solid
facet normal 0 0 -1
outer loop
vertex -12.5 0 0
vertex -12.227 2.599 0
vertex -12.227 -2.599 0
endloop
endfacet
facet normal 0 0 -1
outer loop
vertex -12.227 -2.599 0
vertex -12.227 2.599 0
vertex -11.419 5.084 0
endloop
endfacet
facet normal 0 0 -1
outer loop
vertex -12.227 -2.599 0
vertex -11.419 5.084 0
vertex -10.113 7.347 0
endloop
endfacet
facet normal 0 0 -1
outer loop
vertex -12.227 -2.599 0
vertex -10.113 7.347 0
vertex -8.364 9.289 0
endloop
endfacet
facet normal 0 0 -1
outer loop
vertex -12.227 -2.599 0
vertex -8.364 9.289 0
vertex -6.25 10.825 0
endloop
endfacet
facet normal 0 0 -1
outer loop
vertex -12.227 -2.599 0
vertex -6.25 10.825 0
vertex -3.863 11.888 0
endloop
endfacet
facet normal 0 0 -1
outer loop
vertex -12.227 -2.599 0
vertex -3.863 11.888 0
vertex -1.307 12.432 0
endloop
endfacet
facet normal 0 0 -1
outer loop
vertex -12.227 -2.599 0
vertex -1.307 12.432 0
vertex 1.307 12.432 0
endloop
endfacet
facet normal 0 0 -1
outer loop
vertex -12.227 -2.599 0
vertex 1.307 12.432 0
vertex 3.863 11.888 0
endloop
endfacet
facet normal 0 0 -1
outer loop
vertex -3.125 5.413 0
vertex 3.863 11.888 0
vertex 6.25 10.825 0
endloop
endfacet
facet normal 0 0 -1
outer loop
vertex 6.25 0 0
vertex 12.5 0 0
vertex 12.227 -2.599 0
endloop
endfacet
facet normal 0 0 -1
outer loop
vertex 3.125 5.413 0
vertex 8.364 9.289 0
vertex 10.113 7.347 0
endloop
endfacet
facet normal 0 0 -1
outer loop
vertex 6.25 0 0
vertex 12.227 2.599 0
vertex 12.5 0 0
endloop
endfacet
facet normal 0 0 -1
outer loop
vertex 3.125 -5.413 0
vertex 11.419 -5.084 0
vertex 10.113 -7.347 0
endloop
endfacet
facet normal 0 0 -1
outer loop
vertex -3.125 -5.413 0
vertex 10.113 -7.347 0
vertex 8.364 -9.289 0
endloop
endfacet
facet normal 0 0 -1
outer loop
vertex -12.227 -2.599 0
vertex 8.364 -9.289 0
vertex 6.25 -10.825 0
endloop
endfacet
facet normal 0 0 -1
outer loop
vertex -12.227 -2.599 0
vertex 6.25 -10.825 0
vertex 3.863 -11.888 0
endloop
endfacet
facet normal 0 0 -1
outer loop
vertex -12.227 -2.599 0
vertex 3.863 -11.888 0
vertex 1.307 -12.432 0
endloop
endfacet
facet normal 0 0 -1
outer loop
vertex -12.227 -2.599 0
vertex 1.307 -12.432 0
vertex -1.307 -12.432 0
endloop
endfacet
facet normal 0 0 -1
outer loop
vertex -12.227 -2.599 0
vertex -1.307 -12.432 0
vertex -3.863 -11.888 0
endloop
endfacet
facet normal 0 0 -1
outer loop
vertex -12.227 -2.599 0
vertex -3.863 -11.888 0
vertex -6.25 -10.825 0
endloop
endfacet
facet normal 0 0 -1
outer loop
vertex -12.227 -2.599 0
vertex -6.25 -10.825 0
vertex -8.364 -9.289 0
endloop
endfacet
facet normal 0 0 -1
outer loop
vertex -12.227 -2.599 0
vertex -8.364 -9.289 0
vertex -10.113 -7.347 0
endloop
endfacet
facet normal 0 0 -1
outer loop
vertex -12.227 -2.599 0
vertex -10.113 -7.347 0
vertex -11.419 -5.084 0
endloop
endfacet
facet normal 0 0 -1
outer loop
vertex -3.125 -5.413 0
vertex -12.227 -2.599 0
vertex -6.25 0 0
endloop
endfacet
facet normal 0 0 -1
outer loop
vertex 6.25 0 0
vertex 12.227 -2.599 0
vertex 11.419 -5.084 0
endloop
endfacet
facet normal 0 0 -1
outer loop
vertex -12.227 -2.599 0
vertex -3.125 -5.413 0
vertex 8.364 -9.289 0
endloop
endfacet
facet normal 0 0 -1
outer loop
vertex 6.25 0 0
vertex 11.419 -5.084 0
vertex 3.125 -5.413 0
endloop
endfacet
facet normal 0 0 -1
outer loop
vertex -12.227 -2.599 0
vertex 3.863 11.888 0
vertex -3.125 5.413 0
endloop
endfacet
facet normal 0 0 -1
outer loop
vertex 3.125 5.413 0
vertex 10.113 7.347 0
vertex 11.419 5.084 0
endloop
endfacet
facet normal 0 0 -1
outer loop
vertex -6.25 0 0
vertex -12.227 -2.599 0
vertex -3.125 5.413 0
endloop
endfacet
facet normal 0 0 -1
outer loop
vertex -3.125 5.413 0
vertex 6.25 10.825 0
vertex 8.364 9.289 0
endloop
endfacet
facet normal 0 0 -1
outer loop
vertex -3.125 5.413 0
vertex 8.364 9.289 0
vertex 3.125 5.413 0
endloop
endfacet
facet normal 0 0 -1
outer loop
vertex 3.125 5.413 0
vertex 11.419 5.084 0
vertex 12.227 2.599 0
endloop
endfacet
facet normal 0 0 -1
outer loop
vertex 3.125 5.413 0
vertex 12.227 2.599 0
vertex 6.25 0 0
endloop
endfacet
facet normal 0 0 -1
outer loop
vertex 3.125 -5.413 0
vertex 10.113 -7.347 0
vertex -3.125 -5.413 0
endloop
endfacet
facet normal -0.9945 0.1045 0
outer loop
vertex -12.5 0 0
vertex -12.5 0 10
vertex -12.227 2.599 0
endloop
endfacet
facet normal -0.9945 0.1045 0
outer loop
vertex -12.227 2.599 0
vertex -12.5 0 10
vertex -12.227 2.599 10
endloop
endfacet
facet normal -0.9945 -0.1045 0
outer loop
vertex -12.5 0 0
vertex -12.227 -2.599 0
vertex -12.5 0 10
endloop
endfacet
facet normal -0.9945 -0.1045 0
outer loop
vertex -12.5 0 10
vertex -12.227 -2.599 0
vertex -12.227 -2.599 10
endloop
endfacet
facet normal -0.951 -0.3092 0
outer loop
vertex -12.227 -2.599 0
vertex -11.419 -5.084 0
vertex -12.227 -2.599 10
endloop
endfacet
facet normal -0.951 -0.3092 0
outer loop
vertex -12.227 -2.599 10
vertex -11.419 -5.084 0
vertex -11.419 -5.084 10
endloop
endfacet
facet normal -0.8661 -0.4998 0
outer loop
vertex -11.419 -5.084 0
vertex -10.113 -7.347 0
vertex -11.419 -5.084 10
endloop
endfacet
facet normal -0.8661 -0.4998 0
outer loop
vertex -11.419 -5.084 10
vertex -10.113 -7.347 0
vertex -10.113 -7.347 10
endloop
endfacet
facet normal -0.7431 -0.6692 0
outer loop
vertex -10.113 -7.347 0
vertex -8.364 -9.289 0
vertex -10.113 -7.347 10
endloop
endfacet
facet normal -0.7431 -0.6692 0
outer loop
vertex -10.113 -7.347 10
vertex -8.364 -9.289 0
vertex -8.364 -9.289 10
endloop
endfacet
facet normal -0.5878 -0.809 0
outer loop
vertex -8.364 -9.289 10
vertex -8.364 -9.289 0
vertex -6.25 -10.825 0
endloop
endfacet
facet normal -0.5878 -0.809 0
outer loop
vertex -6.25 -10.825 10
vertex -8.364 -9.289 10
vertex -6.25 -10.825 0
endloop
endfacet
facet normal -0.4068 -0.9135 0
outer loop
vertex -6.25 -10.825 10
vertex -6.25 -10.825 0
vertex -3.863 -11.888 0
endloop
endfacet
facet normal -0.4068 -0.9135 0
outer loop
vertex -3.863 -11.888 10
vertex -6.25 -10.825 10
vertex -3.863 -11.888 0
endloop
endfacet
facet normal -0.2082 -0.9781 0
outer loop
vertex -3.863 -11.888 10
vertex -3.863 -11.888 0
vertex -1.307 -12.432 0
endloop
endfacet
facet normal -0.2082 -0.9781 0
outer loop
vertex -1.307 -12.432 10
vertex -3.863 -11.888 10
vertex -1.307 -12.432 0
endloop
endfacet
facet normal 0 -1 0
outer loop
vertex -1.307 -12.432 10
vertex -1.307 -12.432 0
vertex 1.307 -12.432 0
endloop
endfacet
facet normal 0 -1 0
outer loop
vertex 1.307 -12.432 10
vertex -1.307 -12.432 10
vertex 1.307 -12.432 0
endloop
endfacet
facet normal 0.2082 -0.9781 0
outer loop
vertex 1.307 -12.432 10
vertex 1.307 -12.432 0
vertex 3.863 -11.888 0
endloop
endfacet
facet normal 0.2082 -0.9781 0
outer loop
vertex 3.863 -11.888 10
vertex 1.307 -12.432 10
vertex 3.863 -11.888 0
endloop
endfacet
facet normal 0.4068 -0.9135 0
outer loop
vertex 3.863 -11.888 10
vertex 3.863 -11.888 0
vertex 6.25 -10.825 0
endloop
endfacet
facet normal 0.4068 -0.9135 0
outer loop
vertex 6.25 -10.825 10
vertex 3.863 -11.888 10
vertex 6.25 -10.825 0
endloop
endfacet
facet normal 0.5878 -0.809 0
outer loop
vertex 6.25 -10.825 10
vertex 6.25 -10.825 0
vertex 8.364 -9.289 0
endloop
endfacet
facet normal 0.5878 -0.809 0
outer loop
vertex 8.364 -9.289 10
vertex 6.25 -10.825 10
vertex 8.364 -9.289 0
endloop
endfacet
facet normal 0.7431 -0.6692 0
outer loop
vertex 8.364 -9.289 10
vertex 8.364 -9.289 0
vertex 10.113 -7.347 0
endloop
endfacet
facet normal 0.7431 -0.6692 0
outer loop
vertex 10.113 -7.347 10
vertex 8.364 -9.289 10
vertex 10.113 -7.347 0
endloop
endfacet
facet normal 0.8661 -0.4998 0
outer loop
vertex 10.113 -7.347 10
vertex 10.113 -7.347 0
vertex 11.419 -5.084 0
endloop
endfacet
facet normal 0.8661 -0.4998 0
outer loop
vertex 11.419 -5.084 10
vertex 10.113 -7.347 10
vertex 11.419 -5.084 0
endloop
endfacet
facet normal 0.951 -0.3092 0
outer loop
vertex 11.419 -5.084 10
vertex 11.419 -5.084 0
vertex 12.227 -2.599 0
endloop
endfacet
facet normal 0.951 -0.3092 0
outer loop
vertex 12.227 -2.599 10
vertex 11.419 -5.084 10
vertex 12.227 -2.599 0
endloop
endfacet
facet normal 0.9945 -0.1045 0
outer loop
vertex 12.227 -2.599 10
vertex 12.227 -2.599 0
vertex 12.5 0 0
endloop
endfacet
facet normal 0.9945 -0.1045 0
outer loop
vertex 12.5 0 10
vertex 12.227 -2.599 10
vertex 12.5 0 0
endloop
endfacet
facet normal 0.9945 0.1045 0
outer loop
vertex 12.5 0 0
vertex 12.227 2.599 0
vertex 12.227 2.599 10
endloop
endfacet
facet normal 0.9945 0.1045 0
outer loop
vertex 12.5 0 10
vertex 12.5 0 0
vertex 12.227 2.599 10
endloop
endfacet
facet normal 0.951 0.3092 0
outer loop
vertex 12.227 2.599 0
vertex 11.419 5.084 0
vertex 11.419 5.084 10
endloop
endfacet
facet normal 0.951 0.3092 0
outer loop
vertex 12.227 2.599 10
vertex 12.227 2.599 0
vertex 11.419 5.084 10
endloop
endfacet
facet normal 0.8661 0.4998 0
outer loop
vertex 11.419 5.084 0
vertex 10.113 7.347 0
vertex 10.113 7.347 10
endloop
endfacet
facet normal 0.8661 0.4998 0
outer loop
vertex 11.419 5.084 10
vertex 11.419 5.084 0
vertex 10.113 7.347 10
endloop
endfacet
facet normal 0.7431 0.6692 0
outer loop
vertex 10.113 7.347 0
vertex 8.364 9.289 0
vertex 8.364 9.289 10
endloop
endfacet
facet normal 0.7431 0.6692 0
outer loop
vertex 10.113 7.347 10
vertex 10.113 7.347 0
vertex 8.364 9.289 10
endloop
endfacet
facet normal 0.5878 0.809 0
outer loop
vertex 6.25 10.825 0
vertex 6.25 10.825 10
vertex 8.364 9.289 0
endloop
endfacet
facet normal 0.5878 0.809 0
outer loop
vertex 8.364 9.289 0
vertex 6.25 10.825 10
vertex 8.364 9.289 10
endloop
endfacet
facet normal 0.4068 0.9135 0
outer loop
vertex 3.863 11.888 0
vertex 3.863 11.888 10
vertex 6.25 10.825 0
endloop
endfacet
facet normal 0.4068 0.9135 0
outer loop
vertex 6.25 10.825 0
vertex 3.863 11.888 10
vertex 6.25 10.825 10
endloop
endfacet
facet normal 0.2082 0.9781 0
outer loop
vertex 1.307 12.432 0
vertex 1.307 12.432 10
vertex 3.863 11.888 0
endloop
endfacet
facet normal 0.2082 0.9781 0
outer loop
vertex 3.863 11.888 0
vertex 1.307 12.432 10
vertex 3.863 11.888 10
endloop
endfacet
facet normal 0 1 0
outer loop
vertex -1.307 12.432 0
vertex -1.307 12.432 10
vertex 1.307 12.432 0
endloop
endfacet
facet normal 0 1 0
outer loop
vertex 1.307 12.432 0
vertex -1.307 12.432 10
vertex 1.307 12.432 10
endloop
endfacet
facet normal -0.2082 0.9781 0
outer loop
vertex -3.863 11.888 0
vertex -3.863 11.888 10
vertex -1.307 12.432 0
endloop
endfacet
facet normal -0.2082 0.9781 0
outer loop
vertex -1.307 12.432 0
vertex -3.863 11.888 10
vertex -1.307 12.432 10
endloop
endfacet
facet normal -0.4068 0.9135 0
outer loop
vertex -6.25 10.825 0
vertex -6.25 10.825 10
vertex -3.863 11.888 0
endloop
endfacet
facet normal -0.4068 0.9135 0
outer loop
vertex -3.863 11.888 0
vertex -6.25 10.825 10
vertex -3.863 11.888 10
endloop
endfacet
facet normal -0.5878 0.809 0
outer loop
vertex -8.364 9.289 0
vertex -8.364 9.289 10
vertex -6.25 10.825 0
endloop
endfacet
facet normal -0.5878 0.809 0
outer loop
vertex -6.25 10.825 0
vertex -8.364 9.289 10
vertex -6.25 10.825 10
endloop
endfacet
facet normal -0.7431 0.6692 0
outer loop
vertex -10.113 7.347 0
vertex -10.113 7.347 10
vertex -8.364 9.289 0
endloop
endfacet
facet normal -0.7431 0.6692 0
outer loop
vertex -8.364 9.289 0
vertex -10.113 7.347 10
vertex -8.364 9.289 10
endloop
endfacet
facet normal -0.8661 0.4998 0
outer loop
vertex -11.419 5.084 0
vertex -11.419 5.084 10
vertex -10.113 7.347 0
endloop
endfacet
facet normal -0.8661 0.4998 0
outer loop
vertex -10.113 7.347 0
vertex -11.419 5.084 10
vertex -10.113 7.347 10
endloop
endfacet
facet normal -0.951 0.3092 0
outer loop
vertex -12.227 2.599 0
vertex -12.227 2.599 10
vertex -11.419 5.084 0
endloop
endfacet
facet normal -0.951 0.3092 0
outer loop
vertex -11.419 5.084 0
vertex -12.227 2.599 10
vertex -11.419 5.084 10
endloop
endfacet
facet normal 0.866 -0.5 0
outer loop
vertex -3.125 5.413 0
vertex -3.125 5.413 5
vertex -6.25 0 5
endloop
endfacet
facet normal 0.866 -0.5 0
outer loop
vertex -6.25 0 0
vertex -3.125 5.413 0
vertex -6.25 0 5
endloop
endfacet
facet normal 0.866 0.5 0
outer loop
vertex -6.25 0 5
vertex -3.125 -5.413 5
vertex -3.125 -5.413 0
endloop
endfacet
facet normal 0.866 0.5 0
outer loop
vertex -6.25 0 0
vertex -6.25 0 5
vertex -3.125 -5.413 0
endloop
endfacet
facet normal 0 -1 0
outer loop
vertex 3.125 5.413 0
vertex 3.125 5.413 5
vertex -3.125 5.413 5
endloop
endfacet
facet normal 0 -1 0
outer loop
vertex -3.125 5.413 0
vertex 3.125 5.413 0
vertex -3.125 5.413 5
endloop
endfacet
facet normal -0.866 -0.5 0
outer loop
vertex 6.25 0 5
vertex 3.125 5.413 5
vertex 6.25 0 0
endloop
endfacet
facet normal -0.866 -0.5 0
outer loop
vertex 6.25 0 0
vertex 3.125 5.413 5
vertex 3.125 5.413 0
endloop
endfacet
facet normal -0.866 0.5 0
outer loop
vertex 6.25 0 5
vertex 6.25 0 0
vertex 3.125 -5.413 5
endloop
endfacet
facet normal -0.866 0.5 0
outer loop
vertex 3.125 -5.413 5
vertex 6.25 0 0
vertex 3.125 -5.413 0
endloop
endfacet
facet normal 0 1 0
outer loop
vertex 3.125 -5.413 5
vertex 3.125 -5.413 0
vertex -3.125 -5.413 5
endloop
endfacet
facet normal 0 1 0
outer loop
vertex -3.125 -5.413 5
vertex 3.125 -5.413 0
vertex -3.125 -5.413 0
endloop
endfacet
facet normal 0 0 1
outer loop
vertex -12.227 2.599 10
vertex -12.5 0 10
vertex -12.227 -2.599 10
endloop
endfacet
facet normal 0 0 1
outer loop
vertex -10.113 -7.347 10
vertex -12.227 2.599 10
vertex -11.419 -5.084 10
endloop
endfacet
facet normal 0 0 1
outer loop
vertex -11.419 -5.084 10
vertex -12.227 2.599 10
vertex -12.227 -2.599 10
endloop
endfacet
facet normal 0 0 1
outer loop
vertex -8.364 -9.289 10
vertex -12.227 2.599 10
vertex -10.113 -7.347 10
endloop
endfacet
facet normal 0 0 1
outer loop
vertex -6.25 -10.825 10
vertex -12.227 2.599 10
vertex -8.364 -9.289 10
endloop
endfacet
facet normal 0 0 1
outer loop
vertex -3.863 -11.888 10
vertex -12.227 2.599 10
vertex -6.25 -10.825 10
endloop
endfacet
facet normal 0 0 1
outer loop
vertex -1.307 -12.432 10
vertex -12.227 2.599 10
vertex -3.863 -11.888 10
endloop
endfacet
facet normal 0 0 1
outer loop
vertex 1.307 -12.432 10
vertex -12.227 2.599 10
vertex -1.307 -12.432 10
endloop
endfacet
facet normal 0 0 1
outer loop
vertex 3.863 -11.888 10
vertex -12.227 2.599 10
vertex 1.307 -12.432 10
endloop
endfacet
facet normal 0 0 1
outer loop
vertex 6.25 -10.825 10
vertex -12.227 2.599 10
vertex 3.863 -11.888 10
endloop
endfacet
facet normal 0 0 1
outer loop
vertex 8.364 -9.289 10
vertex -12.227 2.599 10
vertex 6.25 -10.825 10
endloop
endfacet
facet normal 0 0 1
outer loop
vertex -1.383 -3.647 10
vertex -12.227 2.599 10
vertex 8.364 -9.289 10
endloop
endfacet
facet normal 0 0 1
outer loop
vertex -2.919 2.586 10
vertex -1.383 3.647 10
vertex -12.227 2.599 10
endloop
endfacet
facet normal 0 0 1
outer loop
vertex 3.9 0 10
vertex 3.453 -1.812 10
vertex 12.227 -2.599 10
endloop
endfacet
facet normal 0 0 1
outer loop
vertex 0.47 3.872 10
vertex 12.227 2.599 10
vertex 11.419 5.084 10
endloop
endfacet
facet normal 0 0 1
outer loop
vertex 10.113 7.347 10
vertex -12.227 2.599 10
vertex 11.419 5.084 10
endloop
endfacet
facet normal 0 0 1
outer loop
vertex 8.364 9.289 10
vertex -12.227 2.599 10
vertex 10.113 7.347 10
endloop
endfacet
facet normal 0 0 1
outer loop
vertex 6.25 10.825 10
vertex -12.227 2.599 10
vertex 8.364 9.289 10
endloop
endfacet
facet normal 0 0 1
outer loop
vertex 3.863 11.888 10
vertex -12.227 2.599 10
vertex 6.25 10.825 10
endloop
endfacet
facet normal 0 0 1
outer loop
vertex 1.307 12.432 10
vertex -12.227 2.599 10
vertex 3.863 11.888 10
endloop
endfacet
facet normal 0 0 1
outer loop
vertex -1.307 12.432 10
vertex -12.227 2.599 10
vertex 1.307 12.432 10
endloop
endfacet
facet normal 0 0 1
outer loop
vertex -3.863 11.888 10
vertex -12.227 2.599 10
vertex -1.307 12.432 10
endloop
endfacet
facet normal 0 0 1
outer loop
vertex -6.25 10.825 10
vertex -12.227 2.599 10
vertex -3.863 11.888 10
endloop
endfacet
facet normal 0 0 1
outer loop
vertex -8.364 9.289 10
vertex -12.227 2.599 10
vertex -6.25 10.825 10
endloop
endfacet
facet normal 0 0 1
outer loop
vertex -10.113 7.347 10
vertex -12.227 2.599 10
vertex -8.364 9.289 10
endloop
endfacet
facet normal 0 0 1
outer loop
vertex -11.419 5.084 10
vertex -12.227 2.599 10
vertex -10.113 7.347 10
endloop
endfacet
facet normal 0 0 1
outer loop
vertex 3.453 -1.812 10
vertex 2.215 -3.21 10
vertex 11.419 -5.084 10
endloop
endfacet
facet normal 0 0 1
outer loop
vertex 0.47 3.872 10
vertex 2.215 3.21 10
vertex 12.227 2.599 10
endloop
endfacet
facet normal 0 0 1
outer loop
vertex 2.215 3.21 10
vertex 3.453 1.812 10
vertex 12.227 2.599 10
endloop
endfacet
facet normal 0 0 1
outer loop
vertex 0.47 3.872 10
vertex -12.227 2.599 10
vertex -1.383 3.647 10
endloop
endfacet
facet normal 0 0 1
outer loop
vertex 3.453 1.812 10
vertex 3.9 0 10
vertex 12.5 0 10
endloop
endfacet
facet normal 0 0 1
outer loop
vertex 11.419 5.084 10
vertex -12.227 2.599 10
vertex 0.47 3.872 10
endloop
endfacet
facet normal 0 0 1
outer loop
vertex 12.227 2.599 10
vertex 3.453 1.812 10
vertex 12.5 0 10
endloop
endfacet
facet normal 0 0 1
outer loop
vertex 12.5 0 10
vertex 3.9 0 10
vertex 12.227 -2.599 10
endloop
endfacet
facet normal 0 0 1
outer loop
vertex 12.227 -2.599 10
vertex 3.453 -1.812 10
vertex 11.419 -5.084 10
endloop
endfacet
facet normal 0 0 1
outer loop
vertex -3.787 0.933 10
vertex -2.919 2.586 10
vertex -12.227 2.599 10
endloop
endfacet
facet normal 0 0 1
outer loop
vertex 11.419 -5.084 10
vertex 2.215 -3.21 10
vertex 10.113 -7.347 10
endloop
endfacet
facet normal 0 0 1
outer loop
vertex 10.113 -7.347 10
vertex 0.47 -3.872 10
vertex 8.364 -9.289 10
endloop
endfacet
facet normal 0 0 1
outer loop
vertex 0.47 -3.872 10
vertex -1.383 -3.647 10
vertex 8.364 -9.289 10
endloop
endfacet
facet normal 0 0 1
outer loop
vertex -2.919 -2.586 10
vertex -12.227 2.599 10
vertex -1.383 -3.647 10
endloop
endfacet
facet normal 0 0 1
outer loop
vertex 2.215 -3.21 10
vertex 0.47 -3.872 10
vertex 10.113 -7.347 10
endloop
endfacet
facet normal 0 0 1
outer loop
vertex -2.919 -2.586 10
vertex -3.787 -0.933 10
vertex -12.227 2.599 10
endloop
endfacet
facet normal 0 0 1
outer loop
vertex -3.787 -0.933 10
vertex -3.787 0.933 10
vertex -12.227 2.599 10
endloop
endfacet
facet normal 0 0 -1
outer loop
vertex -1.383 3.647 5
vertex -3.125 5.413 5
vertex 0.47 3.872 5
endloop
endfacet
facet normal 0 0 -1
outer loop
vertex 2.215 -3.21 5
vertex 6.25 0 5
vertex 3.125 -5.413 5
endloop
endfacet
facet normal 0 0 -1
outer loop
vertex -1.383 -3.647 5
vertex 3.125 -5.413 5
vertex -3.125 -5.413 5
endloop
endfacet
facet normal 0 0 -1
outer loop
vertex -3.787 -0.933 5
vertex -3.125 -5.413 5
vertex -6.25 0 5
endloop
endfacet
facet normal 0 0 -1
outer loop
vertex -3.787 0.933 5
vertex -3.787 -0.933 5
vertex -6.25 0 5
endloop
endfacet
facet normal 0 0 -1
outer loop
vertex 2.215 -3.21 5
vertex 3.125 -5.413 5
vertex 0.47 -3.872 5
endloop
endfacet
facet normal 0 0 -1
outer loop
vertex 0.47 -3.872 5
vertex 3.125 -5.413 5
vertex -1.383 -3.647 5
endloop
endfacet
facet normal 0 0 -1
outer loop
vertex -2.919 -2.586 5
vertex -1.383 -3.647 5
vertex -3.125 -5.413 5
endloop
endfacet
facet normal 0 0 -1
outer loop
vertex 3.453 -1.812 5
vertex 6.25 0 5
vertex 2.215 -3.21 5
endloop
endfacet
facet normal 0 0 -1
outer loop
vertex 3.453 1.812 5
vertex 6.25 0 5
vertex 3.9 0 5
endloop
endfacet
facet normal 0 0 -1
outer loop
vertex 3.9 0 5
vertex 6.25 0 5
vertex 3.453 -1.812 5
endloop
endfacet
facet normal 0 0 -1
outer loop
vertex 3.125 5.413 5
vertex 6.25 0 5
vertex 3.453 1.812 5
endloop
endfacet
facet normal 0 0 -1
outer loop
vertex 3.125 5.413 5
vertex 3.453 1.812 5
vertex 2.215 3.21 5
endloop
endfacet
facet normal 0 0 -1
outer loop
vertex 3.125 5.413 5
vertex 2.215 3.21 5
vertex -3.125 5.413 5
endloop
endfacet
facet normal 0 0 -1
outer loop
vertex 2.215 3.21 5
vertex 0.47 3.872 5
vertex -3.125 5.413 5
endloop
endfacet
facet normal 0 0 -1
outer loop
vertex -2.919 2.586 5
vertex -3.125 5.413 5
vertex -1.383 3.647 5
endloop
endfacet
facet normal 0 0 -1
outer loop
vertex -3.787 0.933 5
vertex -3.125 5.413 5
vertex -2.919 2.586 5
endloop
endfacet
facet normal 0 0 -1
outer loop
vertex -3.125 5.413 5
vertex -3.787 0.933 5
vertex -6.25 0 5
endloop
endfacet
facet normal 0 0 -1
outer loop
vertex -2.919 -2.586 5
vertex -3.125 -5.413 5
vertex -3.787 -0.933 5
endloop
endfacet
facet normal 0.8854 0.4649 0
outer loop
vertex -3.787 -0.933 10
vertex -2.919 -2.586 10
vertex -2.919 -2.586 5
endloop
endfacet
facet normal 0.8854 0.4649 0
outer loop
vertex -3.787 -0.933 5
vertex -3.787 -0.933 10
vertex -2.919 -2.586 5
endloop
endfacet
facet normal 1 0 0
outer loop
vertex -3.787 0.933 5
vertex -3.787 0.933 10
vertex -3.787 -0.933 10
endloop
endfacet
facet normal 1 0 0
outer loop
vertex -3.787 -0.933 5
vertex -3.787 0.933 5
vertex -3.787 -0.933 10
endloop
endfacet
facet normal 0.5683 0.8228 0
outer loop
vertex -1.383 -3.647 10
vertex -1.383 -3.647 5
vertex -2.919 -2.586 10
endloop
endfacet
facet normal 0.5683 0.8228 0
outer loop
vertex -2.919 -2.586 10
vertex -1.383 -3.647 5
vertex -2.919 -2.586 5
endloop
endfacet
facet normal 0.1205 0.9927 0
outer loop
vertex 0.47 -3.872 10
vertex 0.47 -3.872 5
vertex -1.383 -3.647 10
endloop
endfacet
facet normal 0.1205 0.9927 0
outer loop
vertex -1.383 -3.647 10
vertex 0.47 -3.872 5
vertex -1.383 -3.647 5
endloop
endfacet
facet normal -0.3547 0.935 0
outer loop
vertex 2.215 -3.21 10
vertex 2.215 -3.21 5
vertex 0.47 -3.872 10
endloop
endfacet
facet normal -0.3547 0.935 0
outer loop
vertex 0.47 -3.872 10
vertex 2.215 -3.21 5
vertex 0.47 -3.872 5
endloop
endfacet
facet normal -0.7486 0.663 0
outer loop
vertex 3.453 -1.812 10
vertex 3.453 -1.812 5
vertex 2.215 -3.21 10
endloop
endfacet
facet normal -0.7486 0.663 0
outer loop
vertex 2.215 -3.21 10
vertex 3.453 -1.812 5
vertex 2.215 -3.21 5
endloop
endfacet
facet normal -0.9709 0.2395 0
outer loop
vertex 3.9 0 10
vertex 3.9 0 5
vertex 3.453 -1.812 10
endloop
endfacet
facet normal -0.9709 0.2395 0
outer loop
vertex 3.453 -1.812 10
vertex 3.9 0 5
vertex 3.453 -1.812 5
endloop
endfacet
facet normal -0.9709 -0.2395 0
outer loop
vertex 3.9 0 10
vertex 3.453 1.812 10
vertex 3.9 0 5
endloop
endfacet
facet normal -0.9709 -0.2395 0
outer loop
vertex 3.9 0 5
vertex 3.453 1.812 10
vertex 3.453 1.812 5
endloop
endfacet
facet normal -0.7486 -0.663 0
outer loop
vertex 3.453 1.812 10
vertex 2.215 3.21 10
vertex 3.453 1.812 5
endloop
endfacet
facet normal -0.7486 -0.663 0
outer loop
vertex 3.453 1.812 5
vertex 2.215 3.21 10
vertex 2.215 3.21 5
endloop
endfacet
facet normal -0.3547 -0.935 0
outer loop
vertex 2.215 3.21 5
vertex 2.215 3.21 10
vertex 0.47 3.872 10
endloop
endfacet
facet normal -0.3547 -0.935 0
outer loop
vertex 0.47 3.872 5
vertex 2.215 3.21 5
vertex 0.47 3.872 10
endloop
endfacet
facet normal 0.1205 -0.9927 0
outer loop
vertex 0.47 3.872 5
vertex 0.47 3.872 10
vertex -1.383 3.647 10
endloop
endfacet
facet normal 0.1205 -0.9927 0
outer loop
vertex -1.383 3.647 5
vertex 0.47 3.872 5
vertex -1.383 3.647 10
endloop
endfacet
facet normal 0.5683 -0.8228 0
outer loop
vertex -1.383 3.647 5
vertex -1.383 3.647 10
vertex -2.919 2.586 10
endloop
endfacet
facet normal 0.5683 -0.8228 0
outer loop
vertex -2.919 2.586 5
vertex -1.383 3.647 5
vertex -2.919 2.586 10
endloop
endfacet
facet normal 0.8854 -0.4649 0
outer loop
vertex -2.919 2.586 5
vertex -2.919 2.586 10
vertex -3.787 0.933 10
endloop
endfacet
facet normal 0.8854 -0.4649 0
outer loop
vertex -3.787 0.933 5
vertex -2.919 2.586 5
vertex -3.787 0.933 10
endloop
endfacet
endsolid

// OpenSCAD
// foot.scad
// This is the foot for the frame, should be 4 of them. 

// I am using 5/16" x 3/4" hex head, zinc plated bolts
// Head dimensions range from 12.45 mm to 12.51 mm
//	height varies from 4.97 mm to 5.03 mm
//  threaded portion ranges from 7.64 mm to 7.68 mm

// Variables

head_width = 12.5;
head_height = 5;
threaded = 7.8;

difference()
{ 
  cylinder (h=10, d=25, center=false);
   translate([0,0,-3]) cylinder (h=14,d=threaded);
    translate([0,0,-2]) cylinder (h=head_height+2, d=head_width, $fn=6, center=false);
  }
